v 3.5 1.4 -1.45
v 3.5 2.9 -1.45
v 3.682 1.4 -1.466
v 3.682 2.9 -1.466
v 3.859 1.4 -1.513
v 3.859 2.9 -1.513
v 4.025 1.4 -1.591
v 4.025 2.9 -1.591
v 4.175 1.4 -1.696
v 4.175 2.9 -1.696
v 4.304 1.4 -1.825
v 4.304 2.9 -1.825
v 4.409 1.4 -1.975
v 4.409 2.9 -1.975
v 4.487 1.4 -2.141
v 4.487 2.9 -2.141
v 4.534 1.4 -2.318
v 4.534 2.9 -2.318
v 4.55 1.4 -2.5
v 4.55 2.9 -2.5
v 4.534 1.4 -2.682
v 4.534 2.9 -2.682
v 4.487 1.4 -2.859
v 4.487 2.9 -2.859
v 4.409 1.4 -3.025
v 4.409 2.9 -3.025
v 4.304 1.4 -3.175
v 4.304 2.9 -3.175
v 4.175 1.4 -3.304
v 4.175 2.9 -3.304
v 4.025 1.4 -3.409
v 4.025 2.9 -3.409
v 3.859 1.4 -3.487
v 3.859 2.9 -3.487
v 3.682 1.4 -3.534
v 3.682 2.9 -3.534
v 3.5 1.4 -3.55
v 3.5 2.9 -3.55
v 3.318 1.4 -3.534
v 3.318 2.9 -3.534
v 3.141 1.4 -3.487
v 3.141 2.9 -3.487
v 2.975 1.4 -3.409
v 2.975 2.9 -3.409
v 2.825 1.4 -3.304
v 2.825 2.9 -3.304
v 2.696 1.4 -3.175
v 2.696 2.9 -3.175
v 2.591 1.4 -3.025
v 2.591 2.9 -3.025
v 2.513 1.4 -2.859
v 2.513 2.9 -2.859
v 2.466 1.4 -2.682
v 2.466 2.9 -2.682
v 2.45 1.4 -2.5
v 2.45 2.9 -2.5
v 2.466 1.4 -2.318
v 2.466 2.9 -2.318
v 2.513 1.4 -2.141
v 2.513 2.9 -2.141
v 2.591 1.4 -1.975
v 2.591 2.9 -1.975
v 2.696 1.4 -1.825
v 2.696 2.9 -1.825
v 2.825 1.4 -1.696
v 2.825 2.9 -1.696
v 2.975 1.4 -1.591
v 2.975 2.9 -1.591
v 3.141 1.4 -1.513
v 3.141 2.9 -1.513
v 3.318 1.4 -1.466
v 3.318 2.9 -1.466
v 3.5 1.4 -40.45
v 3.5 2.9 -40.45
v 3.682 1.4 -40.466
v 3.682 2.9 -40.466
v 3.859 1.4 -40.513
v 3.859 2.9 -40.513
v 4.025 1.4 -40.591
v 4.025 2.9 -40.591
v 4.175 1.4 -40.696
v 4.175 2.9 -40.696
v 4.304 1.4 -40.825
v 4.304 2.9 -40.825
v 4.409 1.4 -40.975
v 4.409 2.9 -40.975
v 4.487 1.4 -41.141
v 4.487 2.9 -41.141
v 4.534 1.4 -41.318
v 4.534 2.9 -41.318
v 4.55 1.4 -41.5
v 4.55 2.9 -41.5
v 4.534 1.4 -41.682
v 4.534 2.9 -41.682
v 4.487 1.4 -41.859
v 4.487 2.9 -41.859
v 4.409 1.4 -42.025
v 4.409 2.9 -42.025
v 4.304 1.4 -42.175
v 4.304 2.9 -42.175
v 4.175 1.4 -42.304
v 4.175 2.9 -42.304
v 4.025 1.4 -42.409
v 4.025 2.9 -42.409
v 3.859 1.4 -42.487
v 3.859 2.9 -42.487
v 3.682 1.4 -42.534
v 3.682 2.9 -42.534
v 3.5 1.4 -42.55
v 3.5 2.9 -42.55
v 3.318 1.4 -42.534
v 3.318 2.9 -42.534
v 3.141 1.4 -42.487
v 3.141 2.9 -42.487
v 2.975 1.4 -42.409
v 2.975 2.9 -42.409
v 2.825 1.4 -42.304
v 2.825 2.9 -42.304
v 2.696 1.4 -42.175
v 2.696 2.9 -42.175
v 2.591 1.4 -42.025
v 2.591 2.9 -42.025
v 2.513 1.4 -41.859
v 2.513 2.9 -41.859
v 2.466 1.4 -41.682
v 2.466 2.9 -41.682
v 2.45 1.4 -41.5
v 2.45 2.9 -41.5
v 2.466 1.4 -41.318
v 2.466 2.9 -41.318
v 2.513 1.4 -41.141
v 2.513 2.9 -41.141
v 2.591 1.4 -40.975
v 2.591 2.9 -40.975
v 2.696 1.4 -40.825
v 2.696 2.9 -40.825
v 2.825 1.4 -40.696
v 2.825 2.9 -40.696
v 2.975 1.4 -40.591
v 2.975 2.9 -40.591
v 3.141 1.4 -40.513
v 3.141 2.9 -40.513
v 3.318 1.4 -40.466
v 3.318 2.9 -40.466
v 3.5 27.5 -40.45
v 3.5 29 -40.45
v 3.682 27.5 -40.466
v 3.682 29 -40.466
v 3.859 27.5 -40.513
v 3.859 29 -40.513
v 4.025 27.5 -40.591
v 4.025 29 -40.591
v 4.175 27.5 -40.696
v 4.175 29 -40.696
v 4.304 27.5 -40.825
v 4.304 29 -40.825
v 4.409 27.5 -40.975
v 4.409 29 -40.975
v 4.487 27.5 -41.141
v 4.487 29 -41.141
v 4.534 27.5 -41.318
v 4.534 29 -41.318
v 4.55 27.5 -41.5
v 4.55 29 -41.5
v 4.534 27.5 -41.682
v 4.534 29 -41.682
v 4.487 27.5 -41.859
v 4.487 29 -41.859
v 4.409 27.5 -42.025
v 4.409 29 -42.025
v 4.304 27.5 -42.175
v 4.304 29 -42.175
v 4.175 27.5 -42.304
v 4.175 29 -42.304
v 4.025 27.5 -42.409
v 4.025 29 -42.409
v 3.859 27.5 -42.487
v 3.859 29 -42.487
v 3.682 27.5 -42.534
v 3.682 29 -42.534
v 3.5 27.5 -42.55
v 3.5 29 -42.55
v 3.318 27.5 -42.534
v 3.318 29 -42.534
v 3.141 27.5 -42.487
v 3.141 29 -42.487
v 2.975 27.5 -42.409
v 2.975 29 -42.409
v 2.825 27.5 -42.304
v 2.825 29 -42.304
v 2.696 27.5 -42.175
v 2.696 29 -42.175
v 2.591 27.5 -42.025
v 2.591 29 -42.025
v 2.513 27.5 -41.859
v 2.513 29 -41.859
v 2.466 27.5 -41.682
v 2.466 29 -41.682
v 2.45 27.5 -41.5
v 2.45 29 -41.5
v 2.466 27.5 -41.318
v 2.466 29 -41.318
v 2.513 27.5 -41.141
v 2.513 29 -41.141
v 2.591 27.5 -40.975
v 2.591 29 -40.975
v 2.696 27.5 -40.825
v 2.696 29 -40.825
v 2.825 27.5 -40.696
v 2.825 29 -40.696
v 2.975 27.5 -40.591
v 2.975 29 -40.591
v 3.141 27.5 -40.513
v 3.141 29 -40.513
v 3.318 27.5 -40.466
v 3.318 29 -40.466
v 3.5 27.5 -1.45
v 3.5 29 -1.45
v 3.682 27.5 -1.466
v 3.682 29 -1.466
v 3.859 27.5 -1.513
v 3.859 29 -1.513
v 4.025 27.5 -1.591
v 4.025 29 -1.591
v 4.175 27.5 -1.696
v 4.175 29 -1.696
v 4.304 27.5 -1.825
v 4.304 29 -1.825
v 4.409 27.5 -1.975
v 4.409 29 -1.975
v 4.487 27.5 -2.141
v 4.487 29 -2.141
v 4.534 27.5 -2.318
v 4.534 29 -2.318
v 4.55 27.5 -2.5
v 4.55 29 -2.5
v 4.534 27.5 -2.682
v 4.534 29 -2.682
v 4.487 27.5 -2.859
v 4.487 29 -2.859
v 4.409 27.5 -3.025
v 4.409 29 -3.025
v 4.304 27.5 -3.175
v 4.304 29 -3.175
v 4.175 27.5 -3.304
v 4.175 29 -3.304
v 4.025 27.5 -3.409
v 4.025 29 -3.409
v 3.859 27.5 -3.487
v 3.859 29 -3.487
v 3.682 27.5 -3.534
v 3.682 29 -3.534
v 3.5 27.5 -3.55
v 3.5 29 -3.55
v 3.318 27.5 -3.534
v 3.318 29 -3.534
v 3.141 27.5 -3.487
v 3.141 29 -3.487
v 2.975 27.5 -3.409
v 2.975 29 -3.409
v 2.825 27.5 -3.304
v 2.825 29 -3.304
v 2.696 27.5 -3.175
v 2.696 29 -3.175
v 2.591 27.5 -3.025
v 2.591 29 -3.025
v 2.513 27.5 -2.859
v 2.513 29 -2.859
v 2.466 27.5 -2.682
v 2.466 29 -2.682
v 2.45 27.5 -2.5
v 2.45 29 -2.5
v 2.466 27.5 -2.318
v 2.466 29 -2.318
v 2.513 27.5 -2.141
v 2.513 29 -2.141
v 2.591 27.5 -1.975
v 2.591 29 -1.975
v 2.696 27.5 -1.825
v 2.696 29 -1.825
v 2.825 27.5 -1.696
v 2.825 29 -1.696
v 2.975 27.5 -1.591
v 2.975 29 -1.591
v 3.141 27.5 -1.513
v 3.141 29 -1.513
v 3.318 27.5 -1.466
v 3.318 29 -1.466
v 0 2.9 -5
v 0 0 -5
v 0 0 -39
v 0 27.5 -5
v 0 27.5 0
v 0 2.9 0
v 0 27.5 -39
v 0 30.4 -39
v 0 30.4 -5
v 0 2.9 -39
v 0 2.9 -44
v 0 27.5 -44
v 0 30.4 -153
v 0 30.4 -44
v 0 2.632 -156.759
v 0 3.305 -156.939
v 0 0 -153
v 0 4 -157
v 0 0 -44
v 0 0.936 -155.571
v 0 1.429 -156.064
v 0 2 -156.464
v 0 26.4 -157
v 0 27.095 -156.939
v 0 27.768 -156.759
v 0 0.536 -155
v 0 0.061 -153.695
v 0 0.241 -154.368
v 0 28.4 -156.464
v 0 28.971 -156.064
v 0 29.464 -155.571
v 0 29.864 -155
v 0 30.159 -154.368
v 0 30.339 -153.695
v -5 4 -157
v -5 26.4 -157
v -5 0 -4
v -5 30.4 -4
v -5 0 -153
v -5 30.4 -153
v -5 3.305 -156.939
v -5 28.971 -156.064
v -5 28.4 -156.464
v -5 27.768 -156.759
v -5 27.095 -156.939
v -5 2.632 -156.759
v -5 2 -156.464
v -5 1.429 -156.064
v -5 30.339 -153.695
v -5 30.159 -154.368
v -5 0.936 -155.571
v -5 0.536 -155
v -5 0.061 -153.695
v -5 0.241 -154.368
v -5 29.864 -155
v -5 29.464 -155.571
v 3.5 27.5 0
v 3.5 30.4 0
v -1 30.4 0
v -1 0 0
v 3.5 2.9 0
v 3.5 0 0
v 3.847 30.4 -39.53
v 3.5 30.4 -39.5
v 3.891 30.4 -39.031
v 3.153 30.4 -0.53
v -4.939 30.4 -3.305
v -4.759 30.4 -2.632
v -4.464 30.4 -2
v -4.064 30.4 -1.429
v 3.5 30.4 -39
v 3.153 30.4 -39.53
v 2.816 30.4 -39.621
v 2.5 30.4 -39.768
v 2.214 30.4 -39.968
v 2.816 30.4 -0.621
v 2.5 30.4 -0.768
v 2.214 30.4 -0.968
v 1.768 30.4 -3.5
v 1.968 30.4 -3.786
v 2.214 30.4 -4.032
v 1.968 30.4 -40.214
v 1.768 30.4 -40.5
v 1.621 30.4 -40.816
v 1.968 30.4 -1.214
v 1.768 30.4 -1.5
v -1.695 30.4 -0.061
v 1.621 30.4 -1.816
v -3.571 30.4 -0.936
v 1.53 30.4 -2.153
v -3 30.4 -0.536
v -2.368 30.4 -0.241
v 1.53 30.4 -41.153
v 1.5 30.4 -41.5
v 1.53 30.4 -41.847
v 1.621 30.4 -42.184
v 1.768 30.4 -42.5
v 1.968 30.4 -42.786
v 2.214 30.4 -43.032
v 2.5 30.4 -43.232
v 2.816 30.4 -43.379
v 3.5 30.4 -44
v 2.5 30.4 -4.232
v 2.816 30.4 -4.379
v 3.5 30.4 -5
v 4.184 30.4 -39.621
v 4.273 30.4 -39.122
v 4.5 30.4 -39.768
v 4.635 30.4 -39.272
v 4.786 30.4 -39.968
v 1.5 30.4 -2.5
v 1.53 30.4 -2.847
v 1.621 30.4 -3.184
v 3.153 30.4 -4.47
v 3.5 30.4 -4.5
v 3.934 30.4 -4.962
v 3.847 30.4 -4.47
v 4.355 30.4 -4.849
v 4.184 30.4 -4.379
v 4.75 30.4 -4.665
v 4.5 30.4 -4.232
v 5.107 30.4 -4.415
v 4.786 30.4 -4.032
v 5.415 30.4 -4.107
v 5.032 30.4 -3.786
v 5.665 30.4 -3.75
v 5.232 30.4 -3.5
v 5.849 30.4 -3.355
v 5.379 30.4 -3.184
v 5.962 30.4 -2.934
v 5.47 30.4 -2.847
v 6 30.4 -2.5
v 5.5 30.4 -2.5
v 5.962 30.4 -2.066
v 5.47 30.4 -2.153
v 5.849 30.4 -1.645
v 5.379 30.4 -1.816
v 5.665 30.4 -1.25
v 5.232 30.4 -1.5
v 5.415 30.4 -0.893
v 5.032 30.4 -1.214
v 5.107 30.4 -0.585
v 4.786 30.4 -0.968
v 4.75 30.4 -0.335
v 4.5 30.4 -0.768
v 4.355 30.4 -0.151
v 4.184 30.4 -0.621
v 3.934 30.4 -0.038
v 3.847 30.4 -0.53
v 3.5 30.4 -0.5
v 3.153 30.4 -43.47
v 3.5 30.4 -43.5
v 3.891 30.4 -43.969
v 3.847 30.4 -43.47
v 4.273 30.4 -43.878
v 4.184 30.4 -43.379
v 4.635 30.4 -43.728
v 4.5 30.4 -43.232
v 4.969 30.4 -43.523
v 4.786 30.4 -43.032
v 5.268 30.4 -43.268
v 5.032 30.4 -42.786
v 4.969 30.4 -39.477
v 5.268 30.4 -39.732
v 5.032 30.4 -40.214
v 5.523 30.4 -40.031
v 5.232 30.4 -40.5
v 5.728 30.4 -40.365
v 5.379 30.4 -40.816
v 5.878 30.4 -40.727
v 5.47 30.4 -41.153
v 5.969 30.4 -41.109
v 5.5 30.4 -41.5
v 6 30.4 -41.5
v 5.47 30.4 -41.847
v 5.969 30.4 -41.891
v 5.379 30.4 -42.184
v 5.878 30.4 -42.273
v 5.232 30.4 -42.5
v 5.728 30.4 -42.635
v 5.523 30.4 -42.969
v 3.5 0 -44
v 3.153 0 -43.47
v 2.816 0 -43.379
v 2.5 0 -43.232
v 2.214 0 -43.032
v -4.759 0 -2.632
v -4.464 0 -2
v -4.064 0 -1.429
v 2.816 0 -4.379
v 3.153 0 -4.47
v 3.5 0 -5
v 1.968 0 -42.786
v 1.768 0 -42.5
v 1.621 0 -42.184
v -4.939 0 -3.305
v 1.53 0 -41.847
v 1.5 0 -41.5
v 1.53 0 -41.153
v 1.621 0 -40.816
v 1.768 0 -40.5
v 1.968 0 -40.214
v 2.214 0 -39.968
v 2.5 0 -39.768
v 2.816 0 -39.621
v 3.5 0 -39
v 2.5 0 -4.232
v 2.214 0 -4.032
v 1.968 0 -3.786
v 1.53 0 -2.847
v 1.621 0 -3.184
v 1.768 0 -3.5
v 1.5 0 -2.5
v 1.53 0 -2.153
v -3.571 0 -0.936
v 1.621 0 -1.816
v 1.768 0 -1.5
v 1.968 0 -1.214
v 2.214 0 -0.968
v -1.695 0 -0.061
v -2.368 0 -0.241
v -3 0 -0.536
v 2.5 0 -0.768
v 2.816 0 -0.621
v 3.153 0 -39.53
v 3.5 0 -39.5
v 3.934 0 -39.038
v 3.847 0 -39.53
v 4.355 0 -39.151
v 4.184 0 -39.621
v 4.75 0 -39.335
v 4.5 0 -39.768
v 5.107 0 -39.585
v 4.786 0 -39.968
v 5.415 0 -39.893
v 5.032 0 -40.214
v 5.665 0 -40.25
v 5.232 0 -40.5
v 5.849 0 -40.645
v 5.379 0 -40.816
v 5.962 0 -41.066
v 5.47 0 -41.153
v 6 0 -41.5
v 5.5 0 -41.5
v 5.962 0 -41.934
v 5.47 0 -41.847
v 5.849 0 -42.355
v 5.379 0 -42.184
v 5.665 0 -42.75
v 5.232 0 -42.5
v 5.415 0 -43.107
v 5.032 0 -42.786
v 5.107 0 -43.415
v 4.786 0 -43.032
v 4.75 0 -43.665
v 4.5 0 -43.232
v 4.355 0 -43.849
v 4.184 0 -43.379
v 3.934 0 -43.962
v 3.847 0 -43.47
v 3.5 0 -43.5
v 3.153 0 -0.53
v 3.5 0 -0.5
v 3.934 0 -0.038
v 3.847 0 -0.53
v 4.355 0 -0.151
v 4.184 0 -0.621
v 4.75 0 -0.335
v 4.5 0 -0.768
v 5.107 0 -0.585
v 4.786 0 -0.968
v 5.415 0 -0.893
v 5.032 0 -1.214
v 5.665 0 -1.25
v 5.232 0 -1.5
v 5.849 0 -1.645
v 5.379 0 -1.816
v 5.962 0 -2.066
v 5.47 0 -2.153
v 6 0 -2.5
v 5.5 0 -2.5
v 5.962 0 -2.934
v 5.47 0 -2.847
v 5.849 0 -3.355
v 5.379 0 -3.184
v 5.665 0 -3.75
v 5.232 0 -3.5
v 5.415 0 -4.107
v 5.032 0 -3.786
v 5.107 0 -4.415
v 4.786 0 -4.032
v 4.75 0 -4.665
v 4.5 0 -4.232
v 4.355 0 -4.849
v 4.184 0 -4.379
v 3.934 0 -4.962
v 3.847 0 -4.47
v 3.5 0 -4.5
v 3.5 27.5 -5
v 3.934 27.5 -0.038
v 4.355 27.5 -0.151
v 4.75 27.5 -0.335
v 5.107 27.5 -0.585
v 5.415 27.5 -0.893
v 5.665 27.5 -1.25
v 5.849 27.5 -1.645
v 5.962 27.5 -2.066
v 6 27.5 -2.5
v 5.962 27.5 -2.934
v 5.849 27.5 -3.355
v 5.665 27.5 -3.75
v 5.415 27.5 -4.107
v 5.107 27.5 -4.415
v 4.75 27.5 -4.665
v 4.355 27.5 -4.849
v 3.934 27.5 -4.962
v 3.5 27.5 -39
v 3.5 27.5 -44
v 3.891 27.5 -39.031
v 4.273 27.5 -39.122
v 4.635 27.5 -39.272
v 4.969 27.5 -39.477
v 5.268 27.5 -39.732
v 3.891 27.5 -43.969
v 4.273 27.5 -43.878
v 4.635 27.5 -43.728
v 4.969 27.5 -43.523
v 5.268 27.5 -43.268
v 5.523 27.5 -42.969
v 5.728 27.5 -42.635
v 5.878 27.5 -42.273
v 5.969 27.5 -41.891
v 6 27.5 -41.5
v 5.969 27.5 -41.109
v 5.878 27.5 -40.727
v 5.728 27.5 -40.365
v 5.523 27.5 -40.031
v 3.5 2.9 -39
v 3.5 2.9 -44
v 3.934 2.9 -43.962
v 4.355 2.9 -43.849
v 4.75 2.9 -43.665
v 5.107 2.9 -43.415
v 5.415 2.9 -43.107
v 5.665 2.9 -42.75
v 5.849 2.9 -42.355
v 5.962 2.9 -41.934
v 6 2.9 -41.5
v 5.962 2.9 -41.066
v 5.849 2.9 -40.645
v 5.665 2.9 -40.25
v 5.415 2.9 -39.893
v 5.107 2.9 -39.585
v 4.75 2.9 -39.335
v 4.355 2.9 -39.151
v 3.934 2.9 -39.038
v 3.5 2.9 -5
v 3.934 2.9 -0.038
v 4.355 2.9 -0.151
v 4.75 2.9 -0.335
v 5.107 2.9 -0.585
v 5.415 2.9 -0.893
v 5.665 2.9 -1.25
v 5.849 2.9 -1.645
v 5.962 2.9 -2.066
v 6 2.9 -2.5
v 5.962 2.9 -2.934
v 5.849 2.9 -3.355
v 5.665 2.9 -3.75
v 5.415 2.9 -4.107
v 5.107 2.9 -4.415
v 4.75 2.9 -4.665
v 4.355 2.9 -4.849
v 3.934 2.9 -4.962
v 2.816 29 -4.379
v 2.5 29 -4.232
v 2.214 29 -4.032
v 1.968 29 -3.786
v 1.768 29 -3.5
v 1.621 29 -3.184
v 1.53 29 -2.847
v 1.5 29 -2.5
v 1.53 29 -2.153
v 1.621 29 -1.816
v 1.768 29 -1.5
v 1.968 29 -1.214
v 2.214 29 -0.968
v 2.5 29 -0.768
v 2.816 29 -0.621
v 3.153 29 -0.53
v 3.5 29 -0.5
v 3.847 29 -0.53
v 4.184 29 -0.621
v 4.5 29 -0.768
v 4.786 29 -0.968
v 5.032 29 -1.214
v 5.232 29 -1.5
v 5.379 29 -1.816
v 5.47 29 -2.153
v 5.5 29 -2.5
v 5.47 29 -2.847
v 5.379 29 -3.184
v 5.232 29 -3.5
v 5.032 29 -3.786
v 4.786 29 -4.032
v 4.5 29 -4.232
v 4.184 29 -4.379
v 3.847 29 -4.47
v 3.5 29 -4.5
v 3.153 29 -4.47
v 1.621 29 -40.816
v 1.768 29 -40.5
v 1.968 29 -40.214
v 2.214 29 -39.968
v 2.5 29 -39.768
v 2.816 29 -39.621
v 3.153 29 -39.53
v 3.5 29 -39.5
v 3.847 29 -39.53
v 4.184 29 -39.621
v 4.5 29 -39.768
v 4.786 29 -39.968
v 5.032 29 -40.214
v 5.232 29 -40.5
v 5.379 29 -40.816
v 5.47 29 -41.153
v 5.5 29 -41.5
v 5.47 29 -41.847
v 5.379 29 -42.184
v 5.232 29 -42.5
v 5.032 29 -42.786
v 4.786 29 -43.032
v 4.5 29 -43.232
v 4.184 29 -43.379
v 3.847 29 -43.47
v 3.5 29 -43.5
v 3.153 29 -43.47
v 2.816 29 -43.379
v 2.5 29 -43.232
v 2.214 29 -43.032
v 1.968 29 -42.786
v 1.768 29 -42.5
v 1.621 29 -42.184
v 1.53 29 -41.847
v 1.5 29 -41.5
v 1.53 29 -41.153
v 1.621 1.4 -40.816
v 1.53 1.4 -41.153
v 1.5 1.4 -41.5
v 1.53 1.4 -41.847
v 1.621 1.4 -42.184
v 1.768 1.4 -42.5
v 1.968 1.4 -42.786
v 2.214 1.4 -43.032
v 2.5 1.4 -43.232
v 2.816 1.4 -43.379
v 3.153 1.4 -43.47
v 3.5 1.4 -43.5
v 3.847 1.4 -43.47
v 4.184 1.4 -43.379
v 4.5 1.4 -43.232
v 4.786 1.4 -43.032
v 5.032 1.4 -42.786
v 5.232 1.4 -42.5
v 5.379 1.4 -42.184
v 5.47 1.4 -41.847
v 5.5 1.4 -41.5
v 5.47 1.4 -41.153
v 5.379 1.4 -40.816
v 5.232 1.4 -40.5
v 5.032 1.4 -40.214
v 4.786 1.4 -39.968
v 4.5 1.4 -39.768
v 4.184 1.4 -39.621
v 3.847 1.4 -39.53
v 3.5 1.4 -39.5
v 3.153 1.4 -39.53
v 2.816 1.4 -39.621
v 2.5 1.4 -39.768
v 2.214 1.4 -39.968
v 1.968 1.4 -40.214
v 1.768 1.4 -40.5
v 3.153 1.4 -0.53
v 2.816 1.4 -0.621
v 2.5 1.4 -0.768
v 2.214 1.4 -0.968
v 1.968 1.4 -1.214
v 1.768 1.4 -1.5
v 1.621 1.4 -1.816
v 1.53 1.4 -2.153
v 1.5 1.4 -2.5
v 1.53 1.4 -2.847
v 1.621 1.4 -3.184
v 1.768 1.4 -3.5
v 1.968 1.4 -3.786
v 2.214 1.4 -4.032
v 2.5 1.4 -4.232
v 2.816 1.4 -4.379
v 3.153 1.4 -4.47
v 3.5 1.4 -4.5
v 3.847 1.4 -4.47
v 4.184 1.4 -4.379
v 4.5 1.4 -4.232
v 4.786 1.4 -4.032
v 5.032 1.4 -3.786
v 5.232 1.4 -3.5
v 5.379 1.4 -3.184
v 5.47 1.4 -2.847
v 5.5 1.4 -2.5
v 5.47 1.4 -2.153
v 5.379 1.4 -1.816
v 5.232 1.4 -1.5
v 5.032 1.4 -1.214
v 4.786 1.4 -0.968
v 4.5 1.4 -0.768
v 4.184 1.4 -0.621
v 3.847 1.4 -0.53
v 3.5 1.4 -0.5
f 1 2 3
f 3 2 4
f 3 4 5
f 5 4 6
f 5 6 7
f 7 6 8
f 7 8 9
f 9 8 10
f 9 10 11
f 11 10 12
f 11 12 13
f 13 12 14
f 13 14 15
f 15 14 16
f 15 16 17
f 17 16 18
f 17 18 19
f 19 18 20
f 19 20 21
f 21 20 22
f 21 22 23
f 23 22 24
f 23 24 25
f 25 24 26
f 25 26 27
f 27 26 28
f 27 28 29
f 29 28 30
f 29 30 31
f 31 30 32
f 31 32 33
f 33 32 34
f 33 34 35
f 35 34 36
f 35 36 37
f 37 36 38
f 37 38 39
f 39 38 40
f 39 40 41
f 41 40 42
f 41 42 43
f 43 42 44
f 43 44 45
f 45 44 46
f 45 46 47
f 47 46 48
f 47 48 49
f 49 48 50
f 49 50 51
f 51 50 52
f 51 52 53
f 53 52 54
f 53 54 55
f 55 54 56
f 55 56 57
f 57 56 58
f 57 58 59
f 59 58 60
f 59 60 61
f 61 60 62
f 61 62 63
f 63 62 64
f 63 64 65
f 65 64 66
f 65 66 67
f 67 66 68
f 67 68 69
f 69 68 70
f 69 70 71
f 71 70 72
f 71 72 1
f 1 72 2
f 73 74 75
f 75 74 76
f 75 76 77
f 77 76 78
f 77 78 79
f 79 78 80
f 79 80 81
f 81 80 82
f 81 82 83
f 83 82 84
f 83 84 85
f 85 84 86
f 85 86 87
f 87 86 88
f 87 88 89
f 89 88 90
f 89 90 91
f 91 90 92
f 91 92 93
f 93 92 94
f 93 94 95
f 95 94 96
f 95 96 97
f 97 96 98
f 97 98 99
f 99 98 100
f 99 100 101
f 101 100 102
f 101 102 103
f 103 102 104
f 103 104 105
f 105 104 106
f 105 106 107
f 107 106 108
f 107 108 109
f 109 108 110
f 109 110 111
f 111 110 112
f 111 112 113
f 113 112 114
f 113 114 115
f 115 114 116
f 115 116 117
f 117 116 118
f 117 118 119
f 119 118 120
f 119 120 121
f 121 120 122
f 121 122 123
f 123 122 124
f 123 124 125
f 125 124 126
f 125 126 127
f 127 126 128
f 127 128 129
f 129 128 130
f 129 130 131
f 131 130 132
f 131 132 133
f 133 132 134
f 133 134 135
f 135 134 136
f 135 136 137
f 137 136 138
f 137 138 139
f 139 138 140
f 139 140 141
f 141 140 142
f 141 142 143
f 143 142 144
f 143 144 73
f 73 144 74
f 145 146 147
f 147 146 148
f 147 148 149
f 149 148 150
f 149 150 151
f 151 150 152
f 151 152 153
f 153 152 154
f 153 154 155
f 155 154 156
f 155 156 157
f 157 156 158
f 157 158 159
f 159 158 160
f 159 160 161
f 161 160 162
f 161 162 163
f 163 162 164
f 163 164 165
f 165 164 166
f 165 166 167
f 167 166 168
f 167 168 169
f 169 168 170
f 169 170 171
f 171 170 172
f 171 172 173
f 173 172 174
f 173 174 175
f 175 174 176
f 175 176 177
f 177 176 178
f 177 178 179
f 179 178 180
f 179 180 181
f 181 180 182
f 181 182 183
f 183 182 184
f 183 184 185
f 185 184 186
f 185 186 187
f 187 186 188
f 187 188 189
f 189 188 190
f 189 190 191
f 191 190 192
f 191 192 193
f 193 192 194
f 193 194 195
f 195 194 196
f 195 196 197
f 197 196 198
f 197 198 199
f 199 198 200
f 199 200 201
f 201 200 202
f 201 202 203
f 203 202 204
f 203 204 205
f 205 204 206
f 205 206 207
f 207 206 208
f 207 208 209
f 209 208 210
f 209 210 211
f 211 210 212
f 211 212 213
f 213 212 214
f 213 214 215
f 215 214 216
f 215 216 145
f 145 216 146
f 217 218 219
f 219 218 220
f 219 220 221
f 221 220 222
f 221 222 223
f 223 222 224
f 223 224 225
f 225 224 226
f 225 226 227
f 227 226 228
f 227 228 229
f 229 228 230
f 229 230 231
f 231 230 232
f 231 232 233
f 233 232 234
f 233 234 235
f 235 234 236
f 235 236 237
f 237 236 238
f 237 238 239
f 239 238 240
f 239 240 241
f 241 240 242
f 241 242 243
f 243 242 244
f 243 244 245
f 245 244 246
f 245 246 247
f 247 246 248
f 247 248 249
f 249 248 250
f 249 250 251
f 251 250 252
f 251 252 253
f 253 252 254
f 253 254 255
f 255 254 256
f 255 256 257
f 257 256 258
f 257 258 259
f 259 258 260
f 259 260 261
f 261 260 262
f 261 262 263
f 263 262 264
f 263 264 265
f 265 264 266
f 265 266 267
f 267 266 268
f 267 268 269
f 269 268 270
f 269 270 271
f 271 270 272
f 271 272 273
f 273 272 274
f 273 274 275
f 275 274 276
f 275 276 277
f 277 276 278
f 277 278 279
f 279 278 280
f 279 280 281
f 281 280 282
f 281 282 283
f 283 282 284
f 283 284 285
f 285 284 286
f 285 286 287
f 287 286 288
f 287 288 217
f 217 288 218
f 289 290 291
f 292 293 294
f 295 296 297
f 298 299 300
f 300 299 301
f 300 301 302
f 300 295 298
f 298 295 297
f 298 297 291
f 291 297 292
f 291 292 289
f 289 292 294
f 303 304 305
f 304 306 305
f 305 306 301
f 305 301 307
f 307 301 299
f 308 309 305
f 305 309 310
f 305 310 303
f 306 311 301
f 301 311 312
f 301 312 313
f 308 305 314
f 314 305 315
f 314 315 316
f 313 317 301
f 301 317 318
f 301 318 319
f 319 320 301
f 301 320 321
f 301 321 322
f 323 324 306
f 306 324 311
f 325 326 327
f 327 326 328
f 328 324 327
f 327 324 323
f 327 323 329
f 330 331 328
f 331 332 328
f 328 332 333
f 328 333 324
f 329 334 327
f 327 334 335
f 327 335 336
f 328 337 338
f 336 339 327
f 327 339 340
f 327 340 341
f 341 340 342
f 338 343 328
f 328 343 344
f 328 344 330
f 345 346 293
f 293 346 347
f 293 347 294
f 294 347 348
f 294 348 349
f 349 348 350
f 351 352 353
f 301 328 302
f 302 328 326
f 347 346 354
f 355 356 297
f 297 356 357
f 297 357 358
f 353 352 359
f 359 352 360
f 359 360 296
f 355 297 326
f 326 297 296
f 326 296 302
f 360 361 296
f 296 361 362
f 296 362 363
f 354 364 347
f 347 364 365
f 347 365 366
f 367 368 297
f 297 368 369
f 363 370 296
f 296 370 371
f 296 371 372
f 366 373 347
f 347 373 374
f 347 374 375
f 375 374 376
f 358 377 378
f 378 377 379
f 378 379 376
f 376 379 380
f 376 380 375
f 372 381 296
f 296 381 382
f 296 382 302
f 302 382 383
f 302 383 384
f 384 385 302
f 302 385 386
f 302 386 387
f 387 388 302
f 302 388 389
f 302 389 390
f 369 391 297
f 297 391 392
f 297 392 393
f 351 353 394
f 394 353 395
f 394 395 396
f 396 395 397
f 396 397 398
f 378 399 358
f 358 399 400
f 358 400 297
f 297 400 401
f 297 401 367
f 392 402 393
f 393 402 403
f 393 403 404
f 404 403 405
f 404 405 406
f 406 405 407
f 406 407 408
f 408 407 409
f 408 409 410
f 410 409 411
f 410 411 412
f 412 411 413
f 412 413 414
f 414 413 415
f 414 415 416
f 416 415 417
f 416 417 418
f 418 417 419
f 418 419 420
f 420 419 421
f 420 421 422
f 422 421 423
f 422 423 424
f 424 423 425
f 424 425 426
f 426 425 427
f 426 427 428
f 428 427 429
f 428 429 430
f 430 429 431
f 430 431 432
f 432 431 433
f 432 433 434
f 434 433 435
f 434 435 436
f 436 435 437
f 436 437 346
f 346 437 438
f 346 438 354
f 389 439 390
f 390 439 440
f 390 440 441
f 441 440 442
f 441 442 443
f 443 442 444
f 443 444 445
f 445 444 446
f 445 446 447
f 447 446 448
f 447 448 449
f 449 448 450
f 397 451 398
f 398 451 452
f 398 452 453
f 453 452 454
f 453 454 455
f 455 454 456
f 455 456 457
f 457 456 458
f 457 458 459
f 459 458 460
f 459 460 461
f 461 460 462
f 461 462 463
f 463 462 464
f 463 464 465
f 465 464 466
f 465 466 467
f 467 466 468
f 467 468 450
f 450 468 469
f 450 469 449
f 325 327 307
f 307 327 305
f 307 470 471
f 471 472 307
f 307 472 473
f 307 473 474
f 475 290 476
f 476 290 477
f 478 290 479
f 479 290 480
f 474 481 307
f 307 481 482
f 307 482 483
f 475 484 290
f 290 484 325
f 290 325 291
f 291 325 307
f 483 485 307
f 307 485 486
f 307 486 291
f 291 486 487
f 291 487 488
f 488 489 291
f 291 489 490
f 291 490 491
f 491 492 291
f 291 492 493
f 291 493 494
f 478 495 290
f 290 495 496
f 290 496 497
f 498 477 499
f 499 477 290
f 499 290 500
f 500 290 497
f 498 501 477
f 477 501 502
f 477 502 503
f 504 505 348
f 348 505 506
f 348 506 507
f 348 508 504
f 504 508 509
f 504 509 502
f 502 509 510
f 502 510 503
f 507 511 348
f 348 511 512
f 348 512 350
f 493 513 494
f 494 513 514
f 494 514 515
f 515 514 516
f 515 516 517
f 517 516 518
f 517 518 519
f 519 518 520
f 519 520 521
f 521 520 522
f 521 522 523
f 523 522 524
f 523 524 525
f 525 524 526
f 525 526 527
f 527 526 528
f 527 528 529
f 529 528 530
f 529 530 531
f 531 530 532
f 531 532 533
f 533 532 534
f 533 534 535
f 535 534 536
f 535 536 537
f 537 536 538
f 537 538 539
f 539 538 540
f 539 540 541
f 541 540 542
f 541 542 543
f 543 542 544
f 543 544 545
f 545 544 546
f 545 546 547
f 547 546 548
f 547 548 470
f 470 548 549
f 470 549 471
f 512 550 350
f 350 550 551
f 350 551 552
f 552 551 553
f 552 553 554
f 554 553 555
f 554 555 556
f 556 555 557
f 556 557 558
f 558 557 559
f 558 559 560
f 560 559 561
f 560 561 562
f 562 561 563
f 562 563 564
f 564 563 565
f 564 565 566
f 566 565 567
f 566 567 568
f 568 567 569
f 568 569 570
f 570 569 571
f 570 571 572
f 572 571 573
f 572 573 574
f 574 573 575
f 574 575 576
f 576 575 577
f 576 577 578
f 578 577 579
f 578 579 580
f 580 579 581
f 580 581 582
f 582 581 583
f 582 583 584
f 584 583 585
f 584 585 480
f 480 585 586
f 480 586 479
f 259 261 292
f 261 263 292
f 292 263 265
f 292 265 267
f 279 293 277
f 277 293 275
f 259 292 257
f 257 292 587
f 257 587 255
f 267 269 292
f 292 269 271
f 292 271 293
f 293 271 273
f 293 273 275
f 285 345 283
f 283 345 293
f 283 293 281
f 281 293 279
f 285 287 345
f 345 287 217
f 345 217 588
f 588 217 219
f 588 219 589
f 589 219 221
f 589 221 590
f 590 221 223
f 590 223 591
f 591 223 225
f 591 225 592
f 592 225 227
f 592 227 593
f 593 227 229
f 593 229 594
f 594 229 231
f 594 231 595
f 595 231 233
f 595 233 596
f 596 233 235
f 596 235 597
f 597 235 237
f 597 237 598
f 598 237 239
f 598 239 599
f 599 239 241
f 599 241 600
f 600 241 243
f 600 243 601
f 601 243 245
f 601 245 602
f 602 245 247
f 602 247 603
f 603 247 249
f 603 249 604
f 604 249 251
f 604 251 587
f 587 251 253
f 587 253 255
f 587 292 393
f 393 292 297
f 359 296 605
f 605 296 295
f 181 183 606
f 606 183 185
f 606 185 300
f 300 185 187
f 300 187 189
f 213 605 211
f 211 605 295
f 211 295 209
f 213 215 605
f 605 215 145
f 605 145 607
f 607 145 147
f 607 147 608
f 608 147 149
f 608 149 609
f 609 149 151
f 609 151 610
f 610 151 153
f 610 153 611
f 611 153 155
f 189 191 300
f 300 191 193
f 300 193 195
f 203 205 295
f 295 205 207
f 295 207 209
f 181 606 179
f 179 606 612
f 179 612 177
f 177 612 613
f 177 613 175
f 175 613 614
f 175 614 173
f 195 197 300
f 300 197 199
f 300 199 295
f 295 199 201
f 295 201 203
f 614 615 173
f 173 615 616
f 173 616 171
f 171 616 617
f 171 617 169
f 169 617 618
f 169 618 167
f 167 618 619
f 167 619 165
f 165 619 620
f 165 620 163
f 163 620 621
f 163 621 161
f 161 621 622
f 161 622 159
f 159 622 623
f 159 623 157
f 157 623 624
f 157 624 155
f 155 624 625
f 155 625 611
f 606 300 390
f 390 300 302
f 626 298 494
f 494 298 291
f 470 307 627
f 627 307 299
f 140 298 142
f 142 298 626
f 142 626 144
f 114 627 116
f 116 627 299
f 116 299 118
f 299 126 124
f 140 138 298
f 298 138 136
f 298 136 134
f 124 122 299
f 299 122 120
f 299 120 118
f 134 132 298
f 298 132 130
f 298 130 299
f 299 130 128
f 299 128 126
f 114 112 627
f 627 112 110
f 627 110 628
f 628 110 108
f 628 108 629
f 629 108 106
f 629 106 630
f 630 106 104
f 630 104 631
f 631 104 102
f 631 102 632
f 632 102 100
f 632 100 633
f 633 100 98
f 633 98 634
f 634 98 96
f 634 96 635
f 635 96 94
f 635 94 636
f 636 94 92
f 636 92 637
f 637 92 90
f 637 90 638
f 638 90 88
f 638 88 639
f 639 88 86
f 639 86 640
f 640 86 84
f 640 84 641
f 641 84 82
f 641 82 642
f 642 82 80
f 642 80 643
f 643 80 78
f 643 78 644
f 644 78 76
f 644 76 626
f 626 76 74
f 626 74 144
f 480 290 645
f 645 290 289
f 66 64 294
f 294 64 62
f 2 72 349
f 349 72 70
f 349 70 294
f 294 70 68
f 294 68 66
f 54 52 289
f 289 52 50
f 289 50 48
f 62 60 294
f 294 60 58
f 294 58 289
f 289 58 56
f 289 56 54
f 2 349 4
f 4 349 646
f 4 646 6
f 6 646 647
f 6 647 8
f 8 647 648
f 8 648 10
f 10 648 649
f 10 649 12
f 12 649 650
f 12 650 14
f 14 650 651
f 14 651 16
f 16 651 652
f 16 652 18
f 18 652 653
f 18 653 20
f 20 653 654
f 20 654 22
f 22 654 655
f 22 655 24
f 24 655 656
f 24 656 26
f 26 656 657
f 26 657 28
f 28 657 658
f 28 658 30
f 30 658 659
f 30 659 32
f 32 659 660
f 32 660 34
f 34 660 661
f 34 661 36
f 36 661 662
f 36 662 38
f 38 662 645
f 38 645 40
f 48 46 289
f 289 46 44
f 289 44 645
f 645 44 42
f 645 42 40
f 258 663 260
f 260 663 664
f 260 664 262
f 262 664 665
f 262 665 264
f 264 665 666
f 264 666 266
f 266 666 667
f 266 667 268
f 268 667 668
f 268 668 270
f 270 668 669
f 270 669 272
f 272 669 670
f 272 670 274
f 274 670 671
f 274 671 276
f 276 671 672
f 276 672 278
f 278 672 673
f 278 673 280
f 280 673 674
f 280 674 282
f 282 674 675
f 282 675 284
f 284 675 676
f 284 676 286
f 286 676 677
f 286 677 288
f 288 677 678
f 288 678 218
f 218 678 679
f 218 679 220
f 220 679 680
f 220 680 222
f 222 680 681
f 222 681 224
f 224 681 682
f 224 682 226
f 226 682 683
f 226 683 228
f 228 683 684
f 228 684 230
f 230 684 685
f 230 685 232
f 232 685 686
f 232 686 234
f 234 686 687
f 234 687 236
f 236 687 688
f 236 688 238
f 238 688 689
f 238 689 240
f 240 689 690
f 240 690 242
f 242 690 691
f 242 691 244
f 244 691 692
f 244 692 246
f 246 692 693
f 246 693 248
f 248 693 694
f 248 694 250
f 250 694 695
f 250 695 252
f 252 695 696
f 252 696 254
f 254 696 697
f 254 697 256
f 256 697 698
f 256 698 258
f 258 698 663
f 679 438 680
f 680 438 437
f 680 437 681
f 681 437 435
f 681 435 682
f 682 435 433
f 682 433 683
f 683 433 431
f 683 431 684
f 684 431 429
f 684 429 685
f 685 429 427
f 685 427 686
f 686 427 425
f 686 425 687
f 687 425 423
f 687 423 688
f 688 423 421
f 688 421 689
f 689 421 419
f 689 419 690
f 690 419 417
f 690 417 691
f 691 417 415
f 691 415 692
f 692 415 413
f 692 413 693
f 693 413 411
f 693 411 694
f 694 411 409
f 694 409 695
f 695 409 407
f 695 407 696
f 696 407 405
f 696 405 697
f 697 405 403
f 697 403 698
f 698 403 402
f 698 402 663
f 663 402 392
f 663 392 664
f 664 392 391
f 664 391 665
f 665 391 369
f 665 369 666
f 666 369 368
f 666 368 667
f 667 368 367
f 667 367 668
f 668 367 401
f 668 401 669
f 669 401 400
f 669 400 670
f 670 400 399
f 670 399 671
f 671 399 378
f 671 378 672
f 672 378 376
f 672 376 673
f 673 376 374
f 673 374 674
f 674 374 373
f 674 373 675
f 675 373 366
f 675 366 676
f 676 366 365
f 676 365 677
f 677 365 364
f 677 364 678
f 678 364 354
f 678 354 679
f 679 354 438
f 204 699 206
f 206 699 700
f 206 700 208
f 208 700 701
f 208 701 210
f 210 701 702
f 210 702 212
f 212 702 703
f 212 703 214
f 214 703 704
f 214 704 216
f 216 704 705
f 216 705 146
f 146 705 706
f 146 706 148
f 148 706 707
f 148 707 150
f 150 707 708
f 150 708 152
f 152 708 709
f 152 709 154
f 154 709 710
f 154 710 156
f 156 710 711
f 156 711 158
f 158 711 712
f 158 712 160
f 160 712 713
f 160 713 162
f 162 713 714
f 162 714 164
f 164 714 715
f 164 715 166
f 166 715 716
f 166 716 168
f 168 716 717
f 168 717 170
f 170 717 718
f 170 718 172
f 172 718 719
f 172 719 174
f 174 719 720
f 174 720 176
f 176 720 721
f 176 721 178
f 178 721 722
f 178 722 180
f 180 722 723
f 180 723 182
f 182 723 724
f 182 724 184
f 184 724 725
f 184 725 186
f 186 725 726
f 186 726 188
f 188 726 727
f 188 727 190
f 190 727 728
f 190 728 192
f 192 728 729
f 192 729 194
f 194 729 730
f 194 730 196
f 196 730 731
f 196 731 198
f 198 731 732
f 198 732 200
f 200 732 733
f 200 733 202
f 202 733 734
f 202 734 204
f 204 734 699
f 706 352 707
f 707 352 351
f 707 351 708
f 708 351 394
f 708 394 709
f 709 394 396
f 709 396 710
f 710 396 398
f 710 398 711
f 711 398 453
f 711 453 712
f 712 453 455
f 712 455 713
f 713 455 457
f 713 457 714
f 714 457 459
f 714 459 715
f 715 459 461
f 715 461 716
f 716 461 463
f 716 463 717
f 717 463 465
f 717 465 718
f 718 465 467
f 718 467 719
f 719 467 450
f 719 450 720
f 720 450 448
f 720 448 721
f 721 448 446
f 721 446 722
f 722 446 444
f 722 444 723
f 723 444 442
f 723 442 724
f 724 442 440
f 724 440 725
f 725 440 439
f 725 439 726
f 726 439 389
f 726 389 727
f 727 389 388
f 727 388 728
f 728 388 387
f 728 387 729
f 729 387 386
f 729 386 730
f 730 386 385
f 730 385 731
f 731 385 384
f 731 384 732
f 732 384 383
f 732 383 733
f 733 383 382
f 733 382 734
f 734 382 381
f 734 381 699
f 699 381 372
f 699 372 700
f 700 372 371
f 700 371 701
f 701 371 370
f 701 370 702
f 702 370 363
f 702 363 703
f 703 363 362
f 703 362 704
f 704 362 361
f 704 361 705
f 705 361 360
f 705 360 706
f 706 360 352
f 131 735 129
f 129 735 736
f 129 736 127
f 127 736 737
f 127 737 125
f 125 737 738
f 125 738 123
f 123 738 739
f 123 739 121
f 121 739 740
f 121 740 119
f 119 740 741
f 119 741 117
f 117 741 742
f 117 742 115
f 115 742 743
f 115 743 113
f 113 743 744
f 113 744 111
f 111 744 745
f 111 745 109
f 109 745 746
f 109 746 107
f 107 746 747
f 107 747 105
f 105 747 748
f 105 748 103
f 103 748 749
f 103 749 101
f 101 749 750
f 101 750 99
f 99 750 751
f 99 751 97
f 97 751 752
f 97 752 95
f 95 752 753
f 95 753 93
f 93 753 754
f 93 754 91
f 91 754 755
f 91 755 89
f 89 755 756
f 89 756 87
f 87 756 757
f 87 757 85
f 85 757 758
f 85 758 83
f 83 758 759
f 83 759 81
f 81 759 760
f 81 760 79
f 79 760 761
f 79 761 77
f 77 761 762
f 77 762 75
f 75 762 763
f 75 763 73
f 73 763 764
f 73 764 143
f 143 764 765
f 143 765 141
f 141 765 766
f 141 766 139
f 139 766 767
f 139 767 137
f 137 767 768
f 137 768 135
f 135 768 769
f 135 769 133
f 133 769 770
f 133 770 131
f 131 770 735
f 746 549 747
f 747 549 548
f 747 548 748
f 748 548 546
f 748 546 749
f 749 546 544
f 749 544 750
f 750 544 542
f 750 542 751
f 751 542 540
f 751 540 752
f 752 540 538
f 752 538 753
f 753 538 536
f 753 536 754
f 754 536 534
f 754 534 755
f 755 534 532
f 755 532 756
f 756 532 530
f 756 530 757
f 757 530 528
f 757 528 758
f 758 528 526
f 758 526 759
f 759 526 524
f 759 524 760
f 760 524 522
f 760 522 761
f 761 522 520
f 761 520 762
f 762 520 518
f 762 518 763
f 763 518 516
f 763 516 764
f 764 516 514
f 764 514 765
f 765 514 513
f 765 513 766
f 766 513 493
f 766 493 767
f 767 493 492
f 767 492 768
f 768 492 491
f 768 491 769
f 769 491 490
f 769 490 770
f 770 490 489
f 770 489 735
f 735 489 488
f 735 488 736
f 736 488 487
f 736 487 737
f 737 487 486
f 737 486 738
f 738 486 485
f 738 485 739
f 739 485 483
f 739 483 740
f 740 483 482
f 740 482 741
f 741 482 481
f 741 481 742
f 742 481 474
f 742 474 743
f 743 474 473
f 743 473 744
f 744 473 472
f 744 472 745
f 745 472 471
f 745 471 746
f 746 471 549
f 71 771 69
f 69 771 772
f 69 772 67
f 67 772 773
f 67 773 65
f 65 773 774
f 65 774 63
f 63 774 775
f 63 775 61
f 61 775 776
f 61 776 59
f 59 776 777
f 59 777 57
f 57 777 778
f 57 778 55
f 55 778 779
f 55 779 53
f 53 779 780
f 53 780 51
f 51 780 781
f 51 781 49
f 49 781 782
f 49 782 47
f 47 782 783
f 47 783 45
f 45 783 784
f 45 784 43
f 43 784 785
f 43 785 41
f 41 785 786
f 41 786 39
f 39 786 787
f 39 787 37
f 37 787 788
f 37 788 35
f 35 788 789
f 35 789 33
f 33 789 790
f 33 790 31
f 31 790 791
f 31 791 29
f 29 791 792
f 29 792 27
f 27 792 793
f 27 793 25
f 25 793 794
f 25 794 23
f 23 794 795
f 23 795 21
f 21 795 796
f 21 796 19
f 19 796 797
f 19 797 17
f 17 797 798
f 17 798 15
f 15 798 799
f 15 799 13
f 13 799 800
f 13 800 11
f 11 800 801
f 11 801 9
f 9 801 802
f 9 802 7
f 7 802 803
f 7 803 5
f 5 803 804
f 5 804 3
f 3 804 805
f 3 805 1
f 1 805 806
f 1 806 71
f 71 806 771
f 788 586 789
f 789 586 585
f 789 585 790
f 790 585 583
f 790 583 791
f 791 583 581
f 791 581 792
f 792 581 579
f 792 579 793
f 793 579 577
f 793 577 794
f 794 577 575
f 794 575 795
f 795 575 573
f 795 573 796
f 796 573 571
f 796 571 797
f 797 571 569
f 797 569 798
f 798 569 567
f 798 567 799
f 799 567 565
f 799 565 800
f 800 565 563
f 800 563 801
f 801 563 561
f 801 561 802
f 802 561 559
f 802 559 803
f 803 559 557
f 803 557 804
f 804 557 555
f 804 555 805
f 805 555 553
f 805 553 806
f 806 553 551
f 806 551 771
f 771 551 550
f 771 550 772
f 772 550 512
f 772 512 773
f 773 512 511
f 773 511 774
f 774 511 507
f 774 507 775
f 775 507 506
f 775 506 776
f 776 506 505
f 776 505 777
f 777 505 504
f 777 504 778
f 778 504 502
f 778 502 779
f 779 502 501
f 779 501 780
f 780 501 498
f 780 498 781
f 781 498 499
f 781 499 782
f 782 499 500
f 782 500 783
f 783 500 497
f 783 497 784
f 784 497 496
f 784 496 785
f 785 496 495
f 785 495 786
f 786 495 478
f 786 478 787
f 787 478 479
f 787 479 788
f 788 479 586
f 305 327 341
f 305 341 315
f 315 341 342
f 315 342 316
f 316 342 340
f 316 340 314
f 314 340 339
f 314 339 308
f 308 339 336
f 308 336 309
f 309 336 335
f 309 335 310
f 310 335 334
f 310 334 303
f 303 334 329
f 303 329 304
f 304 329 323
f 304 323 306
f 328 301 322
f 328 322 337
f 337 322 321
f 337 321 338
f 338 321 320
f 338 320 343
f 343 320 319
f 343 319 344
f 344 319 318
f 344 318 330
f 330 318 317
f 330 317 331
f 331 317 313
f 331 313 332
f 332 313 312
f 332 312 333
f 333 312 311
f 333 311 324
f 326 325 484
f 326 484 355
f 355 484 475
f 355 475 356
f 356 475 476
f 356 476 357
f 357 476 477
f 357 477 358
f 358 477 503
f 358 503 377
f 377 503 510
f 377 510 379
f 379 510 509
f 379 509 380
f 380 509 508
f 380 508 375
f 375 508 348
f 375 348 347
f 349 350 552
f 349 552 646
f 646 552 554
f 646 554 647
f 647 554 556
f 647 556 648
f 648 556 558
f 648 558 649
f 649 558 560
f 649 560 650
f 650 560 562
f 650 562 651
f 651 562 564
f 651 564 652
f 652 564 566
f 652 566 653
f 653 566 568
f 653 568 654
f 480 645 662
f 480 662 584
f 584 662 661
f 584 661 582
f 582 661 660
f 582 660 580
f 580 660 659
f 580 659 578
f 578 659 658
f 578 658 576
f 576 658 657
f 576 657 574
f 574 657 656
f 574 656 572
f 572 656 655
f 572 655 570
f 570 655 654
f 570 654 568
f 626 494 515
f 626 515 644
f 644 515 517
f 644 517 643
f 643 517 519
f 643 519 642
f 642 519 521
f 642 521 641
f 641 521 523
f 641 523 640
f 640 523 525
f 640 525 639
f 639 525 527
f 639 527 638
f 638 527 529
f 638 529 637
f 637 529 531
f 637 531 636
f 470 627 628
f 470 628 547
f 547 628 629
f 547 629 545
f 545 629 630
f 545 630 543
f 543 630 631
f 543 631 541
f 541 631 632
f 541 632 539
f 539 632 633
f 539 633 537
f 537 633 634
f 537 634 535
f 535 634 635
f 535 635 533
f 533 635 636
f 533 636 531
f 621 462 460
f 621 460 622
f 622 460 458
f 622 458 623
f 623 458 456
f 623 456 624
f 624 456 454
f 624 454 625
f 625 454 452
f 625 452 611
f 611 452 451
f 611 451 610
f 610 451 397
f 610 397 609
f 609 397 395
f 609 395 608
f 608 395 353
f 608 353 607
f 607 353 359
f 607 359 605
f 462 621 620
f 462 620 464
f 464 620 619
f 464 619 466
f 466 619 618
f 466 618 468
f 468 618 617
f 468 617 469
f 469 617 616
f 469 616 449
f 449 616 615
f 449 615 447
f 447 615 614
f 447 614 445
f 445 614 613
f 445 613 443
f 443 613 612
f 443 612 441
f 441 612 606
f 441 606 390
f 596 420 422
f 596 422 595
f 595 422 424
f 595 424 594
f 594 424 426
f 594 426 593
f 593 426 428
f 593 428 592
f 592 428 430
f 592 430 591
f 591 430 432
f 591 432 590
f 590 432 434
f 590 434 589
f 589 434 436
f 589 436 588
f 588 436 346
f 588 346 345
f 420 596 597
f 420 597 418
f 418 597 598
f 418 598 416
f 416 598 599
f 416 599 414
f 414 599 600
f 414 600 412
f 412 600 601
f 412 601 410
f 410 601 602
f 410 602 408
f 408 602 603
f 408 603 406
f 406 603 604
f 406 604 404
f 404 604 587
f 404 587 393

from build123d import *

# Parameters (mm, degrees)
SKETCH1_W           = 5
SKETCH1_H           = 157
BOSS_EXTRUDE1_DEPTH = 30.4
SKETCH2_W           = 5
SKETCH2_H           = 2.9
BOSS_EXTRUDE2_DEPTH = 6
SKETCH3_R           = 1.05
CUT_EXTRUDE1_DEPTH  = 161.02862244
SKETCH4_R           = 2
CUT_EXTRUDE2_DEPTH  = 1.4
FILLET1_R           = 4
FILLET2_R           = 2.5


with BuildPart() as part:
    # Sketch1 → Boss-Extrude1 (new body)
    with BuildSketch(Plane(origin=(0, 0, 0), x_dir=(1, 0, 0), z_dir=(0, 1, 0))):
        with Locations((-2.5, 78.5)):
            Rectangle(SKETCH1_W, SKETCH1_H)
    extrude(amount=BOSS_EXTRUDE1_DEPTH)

    # Sketch2 → Boss-Extrude2 (add)
    with BuildSketch(Plane(origin=(0, 0, 0), x_dir=(0, 0, -1), z_dir=(1, 0, 0))):
        with Locations((2.5, 28.95)):
            Rectangle(SKETCH2_W, SKETCH2_H)
        with Locations((41.5, 28.95)):
            Rectangle(SKETCH2_W, SKETCH2_H)
        with Locations((41.5, 1.45)):
            Rectangle(SKETCH2_W, SKETCH2_H)
        with Locations((2.5, 1.45)):
            Rectangle(SKETCH2_W, SKETCH2_H)
    extrude(amount=BOSS_EXTRUDE2_DEPTH)

    # Sketch3 → Cut-Extrude1 (cut, through all)
    with BuildSketch(Plane(origin=(0, 30.4, 0), x_dir=(1, 0, 0), z_dir=(0, 1, 0))):
        with Locations(Location((3.5, 41.5, 0), (0, 0, 270))):
            Circle(SKETCH3_R)
        with Locations(Location((3.5, 2.5, 0), (0, 0, 270))):
            Circle(SKETCH3_R)
    extrude(amount=-CUT_EXTRUDE1_DEPTH, mode=Mode.SUBTRACT)

    # Sketch4 → Cut-Extrude2 (cut)
    with BuildSketch(Plane(origin=(0, 30.4, 0), x_dir=(1, 0, 0), z_dir=(0, 1, 0))):
        with Locations(Location((3.5, 41.5, 0), (0, 0, 270))):
            Circle(SKETCH4_R)
        with Locations(Location((3.5, 2.5, 0), (0, 0, 270))):
            Circle(SKETCH4_R)
    cut_extrude2 = extrude(amount=-CUT_EXTRUDE2_DEPTH, mode=Mode.SUBTRACT)

    # Mirror2: Cut-Extrude2 across plane
    add(cut_extrude2.mirror(Plane.ZX.offset(15.2)), mode=Mode.SUBTRACT)

    # Fillet1
    fillet1_edges = [part.edges().sort_by_distance(p)[0] for p in [
        (-2.5, 0, -157),
        (-5, 15.2, 0),
        (-2.5, 30.4, -157),
    ]]
    fillet(fillet1_edges, radius=FILLET1_R)

    # Fillet2
    fillet2_edges = [part.edges().sort_by_distance(p)[0] for p in [
        (6, 1.45, -5),
        (6, 1.45, 0),
        (6, 1.45, -44),
        (6, 1.45, -39),
        (6, 28.95, -44),
        (6, 28.95, -39),
        (6, 28.95, -5),
        (6, 28.95, 0),
    ]]
    fillet(fillet2_edges, radius=FILLET2_R - 0.0001)  # a hair under: the kernel refuses the full size


solid = part.part
